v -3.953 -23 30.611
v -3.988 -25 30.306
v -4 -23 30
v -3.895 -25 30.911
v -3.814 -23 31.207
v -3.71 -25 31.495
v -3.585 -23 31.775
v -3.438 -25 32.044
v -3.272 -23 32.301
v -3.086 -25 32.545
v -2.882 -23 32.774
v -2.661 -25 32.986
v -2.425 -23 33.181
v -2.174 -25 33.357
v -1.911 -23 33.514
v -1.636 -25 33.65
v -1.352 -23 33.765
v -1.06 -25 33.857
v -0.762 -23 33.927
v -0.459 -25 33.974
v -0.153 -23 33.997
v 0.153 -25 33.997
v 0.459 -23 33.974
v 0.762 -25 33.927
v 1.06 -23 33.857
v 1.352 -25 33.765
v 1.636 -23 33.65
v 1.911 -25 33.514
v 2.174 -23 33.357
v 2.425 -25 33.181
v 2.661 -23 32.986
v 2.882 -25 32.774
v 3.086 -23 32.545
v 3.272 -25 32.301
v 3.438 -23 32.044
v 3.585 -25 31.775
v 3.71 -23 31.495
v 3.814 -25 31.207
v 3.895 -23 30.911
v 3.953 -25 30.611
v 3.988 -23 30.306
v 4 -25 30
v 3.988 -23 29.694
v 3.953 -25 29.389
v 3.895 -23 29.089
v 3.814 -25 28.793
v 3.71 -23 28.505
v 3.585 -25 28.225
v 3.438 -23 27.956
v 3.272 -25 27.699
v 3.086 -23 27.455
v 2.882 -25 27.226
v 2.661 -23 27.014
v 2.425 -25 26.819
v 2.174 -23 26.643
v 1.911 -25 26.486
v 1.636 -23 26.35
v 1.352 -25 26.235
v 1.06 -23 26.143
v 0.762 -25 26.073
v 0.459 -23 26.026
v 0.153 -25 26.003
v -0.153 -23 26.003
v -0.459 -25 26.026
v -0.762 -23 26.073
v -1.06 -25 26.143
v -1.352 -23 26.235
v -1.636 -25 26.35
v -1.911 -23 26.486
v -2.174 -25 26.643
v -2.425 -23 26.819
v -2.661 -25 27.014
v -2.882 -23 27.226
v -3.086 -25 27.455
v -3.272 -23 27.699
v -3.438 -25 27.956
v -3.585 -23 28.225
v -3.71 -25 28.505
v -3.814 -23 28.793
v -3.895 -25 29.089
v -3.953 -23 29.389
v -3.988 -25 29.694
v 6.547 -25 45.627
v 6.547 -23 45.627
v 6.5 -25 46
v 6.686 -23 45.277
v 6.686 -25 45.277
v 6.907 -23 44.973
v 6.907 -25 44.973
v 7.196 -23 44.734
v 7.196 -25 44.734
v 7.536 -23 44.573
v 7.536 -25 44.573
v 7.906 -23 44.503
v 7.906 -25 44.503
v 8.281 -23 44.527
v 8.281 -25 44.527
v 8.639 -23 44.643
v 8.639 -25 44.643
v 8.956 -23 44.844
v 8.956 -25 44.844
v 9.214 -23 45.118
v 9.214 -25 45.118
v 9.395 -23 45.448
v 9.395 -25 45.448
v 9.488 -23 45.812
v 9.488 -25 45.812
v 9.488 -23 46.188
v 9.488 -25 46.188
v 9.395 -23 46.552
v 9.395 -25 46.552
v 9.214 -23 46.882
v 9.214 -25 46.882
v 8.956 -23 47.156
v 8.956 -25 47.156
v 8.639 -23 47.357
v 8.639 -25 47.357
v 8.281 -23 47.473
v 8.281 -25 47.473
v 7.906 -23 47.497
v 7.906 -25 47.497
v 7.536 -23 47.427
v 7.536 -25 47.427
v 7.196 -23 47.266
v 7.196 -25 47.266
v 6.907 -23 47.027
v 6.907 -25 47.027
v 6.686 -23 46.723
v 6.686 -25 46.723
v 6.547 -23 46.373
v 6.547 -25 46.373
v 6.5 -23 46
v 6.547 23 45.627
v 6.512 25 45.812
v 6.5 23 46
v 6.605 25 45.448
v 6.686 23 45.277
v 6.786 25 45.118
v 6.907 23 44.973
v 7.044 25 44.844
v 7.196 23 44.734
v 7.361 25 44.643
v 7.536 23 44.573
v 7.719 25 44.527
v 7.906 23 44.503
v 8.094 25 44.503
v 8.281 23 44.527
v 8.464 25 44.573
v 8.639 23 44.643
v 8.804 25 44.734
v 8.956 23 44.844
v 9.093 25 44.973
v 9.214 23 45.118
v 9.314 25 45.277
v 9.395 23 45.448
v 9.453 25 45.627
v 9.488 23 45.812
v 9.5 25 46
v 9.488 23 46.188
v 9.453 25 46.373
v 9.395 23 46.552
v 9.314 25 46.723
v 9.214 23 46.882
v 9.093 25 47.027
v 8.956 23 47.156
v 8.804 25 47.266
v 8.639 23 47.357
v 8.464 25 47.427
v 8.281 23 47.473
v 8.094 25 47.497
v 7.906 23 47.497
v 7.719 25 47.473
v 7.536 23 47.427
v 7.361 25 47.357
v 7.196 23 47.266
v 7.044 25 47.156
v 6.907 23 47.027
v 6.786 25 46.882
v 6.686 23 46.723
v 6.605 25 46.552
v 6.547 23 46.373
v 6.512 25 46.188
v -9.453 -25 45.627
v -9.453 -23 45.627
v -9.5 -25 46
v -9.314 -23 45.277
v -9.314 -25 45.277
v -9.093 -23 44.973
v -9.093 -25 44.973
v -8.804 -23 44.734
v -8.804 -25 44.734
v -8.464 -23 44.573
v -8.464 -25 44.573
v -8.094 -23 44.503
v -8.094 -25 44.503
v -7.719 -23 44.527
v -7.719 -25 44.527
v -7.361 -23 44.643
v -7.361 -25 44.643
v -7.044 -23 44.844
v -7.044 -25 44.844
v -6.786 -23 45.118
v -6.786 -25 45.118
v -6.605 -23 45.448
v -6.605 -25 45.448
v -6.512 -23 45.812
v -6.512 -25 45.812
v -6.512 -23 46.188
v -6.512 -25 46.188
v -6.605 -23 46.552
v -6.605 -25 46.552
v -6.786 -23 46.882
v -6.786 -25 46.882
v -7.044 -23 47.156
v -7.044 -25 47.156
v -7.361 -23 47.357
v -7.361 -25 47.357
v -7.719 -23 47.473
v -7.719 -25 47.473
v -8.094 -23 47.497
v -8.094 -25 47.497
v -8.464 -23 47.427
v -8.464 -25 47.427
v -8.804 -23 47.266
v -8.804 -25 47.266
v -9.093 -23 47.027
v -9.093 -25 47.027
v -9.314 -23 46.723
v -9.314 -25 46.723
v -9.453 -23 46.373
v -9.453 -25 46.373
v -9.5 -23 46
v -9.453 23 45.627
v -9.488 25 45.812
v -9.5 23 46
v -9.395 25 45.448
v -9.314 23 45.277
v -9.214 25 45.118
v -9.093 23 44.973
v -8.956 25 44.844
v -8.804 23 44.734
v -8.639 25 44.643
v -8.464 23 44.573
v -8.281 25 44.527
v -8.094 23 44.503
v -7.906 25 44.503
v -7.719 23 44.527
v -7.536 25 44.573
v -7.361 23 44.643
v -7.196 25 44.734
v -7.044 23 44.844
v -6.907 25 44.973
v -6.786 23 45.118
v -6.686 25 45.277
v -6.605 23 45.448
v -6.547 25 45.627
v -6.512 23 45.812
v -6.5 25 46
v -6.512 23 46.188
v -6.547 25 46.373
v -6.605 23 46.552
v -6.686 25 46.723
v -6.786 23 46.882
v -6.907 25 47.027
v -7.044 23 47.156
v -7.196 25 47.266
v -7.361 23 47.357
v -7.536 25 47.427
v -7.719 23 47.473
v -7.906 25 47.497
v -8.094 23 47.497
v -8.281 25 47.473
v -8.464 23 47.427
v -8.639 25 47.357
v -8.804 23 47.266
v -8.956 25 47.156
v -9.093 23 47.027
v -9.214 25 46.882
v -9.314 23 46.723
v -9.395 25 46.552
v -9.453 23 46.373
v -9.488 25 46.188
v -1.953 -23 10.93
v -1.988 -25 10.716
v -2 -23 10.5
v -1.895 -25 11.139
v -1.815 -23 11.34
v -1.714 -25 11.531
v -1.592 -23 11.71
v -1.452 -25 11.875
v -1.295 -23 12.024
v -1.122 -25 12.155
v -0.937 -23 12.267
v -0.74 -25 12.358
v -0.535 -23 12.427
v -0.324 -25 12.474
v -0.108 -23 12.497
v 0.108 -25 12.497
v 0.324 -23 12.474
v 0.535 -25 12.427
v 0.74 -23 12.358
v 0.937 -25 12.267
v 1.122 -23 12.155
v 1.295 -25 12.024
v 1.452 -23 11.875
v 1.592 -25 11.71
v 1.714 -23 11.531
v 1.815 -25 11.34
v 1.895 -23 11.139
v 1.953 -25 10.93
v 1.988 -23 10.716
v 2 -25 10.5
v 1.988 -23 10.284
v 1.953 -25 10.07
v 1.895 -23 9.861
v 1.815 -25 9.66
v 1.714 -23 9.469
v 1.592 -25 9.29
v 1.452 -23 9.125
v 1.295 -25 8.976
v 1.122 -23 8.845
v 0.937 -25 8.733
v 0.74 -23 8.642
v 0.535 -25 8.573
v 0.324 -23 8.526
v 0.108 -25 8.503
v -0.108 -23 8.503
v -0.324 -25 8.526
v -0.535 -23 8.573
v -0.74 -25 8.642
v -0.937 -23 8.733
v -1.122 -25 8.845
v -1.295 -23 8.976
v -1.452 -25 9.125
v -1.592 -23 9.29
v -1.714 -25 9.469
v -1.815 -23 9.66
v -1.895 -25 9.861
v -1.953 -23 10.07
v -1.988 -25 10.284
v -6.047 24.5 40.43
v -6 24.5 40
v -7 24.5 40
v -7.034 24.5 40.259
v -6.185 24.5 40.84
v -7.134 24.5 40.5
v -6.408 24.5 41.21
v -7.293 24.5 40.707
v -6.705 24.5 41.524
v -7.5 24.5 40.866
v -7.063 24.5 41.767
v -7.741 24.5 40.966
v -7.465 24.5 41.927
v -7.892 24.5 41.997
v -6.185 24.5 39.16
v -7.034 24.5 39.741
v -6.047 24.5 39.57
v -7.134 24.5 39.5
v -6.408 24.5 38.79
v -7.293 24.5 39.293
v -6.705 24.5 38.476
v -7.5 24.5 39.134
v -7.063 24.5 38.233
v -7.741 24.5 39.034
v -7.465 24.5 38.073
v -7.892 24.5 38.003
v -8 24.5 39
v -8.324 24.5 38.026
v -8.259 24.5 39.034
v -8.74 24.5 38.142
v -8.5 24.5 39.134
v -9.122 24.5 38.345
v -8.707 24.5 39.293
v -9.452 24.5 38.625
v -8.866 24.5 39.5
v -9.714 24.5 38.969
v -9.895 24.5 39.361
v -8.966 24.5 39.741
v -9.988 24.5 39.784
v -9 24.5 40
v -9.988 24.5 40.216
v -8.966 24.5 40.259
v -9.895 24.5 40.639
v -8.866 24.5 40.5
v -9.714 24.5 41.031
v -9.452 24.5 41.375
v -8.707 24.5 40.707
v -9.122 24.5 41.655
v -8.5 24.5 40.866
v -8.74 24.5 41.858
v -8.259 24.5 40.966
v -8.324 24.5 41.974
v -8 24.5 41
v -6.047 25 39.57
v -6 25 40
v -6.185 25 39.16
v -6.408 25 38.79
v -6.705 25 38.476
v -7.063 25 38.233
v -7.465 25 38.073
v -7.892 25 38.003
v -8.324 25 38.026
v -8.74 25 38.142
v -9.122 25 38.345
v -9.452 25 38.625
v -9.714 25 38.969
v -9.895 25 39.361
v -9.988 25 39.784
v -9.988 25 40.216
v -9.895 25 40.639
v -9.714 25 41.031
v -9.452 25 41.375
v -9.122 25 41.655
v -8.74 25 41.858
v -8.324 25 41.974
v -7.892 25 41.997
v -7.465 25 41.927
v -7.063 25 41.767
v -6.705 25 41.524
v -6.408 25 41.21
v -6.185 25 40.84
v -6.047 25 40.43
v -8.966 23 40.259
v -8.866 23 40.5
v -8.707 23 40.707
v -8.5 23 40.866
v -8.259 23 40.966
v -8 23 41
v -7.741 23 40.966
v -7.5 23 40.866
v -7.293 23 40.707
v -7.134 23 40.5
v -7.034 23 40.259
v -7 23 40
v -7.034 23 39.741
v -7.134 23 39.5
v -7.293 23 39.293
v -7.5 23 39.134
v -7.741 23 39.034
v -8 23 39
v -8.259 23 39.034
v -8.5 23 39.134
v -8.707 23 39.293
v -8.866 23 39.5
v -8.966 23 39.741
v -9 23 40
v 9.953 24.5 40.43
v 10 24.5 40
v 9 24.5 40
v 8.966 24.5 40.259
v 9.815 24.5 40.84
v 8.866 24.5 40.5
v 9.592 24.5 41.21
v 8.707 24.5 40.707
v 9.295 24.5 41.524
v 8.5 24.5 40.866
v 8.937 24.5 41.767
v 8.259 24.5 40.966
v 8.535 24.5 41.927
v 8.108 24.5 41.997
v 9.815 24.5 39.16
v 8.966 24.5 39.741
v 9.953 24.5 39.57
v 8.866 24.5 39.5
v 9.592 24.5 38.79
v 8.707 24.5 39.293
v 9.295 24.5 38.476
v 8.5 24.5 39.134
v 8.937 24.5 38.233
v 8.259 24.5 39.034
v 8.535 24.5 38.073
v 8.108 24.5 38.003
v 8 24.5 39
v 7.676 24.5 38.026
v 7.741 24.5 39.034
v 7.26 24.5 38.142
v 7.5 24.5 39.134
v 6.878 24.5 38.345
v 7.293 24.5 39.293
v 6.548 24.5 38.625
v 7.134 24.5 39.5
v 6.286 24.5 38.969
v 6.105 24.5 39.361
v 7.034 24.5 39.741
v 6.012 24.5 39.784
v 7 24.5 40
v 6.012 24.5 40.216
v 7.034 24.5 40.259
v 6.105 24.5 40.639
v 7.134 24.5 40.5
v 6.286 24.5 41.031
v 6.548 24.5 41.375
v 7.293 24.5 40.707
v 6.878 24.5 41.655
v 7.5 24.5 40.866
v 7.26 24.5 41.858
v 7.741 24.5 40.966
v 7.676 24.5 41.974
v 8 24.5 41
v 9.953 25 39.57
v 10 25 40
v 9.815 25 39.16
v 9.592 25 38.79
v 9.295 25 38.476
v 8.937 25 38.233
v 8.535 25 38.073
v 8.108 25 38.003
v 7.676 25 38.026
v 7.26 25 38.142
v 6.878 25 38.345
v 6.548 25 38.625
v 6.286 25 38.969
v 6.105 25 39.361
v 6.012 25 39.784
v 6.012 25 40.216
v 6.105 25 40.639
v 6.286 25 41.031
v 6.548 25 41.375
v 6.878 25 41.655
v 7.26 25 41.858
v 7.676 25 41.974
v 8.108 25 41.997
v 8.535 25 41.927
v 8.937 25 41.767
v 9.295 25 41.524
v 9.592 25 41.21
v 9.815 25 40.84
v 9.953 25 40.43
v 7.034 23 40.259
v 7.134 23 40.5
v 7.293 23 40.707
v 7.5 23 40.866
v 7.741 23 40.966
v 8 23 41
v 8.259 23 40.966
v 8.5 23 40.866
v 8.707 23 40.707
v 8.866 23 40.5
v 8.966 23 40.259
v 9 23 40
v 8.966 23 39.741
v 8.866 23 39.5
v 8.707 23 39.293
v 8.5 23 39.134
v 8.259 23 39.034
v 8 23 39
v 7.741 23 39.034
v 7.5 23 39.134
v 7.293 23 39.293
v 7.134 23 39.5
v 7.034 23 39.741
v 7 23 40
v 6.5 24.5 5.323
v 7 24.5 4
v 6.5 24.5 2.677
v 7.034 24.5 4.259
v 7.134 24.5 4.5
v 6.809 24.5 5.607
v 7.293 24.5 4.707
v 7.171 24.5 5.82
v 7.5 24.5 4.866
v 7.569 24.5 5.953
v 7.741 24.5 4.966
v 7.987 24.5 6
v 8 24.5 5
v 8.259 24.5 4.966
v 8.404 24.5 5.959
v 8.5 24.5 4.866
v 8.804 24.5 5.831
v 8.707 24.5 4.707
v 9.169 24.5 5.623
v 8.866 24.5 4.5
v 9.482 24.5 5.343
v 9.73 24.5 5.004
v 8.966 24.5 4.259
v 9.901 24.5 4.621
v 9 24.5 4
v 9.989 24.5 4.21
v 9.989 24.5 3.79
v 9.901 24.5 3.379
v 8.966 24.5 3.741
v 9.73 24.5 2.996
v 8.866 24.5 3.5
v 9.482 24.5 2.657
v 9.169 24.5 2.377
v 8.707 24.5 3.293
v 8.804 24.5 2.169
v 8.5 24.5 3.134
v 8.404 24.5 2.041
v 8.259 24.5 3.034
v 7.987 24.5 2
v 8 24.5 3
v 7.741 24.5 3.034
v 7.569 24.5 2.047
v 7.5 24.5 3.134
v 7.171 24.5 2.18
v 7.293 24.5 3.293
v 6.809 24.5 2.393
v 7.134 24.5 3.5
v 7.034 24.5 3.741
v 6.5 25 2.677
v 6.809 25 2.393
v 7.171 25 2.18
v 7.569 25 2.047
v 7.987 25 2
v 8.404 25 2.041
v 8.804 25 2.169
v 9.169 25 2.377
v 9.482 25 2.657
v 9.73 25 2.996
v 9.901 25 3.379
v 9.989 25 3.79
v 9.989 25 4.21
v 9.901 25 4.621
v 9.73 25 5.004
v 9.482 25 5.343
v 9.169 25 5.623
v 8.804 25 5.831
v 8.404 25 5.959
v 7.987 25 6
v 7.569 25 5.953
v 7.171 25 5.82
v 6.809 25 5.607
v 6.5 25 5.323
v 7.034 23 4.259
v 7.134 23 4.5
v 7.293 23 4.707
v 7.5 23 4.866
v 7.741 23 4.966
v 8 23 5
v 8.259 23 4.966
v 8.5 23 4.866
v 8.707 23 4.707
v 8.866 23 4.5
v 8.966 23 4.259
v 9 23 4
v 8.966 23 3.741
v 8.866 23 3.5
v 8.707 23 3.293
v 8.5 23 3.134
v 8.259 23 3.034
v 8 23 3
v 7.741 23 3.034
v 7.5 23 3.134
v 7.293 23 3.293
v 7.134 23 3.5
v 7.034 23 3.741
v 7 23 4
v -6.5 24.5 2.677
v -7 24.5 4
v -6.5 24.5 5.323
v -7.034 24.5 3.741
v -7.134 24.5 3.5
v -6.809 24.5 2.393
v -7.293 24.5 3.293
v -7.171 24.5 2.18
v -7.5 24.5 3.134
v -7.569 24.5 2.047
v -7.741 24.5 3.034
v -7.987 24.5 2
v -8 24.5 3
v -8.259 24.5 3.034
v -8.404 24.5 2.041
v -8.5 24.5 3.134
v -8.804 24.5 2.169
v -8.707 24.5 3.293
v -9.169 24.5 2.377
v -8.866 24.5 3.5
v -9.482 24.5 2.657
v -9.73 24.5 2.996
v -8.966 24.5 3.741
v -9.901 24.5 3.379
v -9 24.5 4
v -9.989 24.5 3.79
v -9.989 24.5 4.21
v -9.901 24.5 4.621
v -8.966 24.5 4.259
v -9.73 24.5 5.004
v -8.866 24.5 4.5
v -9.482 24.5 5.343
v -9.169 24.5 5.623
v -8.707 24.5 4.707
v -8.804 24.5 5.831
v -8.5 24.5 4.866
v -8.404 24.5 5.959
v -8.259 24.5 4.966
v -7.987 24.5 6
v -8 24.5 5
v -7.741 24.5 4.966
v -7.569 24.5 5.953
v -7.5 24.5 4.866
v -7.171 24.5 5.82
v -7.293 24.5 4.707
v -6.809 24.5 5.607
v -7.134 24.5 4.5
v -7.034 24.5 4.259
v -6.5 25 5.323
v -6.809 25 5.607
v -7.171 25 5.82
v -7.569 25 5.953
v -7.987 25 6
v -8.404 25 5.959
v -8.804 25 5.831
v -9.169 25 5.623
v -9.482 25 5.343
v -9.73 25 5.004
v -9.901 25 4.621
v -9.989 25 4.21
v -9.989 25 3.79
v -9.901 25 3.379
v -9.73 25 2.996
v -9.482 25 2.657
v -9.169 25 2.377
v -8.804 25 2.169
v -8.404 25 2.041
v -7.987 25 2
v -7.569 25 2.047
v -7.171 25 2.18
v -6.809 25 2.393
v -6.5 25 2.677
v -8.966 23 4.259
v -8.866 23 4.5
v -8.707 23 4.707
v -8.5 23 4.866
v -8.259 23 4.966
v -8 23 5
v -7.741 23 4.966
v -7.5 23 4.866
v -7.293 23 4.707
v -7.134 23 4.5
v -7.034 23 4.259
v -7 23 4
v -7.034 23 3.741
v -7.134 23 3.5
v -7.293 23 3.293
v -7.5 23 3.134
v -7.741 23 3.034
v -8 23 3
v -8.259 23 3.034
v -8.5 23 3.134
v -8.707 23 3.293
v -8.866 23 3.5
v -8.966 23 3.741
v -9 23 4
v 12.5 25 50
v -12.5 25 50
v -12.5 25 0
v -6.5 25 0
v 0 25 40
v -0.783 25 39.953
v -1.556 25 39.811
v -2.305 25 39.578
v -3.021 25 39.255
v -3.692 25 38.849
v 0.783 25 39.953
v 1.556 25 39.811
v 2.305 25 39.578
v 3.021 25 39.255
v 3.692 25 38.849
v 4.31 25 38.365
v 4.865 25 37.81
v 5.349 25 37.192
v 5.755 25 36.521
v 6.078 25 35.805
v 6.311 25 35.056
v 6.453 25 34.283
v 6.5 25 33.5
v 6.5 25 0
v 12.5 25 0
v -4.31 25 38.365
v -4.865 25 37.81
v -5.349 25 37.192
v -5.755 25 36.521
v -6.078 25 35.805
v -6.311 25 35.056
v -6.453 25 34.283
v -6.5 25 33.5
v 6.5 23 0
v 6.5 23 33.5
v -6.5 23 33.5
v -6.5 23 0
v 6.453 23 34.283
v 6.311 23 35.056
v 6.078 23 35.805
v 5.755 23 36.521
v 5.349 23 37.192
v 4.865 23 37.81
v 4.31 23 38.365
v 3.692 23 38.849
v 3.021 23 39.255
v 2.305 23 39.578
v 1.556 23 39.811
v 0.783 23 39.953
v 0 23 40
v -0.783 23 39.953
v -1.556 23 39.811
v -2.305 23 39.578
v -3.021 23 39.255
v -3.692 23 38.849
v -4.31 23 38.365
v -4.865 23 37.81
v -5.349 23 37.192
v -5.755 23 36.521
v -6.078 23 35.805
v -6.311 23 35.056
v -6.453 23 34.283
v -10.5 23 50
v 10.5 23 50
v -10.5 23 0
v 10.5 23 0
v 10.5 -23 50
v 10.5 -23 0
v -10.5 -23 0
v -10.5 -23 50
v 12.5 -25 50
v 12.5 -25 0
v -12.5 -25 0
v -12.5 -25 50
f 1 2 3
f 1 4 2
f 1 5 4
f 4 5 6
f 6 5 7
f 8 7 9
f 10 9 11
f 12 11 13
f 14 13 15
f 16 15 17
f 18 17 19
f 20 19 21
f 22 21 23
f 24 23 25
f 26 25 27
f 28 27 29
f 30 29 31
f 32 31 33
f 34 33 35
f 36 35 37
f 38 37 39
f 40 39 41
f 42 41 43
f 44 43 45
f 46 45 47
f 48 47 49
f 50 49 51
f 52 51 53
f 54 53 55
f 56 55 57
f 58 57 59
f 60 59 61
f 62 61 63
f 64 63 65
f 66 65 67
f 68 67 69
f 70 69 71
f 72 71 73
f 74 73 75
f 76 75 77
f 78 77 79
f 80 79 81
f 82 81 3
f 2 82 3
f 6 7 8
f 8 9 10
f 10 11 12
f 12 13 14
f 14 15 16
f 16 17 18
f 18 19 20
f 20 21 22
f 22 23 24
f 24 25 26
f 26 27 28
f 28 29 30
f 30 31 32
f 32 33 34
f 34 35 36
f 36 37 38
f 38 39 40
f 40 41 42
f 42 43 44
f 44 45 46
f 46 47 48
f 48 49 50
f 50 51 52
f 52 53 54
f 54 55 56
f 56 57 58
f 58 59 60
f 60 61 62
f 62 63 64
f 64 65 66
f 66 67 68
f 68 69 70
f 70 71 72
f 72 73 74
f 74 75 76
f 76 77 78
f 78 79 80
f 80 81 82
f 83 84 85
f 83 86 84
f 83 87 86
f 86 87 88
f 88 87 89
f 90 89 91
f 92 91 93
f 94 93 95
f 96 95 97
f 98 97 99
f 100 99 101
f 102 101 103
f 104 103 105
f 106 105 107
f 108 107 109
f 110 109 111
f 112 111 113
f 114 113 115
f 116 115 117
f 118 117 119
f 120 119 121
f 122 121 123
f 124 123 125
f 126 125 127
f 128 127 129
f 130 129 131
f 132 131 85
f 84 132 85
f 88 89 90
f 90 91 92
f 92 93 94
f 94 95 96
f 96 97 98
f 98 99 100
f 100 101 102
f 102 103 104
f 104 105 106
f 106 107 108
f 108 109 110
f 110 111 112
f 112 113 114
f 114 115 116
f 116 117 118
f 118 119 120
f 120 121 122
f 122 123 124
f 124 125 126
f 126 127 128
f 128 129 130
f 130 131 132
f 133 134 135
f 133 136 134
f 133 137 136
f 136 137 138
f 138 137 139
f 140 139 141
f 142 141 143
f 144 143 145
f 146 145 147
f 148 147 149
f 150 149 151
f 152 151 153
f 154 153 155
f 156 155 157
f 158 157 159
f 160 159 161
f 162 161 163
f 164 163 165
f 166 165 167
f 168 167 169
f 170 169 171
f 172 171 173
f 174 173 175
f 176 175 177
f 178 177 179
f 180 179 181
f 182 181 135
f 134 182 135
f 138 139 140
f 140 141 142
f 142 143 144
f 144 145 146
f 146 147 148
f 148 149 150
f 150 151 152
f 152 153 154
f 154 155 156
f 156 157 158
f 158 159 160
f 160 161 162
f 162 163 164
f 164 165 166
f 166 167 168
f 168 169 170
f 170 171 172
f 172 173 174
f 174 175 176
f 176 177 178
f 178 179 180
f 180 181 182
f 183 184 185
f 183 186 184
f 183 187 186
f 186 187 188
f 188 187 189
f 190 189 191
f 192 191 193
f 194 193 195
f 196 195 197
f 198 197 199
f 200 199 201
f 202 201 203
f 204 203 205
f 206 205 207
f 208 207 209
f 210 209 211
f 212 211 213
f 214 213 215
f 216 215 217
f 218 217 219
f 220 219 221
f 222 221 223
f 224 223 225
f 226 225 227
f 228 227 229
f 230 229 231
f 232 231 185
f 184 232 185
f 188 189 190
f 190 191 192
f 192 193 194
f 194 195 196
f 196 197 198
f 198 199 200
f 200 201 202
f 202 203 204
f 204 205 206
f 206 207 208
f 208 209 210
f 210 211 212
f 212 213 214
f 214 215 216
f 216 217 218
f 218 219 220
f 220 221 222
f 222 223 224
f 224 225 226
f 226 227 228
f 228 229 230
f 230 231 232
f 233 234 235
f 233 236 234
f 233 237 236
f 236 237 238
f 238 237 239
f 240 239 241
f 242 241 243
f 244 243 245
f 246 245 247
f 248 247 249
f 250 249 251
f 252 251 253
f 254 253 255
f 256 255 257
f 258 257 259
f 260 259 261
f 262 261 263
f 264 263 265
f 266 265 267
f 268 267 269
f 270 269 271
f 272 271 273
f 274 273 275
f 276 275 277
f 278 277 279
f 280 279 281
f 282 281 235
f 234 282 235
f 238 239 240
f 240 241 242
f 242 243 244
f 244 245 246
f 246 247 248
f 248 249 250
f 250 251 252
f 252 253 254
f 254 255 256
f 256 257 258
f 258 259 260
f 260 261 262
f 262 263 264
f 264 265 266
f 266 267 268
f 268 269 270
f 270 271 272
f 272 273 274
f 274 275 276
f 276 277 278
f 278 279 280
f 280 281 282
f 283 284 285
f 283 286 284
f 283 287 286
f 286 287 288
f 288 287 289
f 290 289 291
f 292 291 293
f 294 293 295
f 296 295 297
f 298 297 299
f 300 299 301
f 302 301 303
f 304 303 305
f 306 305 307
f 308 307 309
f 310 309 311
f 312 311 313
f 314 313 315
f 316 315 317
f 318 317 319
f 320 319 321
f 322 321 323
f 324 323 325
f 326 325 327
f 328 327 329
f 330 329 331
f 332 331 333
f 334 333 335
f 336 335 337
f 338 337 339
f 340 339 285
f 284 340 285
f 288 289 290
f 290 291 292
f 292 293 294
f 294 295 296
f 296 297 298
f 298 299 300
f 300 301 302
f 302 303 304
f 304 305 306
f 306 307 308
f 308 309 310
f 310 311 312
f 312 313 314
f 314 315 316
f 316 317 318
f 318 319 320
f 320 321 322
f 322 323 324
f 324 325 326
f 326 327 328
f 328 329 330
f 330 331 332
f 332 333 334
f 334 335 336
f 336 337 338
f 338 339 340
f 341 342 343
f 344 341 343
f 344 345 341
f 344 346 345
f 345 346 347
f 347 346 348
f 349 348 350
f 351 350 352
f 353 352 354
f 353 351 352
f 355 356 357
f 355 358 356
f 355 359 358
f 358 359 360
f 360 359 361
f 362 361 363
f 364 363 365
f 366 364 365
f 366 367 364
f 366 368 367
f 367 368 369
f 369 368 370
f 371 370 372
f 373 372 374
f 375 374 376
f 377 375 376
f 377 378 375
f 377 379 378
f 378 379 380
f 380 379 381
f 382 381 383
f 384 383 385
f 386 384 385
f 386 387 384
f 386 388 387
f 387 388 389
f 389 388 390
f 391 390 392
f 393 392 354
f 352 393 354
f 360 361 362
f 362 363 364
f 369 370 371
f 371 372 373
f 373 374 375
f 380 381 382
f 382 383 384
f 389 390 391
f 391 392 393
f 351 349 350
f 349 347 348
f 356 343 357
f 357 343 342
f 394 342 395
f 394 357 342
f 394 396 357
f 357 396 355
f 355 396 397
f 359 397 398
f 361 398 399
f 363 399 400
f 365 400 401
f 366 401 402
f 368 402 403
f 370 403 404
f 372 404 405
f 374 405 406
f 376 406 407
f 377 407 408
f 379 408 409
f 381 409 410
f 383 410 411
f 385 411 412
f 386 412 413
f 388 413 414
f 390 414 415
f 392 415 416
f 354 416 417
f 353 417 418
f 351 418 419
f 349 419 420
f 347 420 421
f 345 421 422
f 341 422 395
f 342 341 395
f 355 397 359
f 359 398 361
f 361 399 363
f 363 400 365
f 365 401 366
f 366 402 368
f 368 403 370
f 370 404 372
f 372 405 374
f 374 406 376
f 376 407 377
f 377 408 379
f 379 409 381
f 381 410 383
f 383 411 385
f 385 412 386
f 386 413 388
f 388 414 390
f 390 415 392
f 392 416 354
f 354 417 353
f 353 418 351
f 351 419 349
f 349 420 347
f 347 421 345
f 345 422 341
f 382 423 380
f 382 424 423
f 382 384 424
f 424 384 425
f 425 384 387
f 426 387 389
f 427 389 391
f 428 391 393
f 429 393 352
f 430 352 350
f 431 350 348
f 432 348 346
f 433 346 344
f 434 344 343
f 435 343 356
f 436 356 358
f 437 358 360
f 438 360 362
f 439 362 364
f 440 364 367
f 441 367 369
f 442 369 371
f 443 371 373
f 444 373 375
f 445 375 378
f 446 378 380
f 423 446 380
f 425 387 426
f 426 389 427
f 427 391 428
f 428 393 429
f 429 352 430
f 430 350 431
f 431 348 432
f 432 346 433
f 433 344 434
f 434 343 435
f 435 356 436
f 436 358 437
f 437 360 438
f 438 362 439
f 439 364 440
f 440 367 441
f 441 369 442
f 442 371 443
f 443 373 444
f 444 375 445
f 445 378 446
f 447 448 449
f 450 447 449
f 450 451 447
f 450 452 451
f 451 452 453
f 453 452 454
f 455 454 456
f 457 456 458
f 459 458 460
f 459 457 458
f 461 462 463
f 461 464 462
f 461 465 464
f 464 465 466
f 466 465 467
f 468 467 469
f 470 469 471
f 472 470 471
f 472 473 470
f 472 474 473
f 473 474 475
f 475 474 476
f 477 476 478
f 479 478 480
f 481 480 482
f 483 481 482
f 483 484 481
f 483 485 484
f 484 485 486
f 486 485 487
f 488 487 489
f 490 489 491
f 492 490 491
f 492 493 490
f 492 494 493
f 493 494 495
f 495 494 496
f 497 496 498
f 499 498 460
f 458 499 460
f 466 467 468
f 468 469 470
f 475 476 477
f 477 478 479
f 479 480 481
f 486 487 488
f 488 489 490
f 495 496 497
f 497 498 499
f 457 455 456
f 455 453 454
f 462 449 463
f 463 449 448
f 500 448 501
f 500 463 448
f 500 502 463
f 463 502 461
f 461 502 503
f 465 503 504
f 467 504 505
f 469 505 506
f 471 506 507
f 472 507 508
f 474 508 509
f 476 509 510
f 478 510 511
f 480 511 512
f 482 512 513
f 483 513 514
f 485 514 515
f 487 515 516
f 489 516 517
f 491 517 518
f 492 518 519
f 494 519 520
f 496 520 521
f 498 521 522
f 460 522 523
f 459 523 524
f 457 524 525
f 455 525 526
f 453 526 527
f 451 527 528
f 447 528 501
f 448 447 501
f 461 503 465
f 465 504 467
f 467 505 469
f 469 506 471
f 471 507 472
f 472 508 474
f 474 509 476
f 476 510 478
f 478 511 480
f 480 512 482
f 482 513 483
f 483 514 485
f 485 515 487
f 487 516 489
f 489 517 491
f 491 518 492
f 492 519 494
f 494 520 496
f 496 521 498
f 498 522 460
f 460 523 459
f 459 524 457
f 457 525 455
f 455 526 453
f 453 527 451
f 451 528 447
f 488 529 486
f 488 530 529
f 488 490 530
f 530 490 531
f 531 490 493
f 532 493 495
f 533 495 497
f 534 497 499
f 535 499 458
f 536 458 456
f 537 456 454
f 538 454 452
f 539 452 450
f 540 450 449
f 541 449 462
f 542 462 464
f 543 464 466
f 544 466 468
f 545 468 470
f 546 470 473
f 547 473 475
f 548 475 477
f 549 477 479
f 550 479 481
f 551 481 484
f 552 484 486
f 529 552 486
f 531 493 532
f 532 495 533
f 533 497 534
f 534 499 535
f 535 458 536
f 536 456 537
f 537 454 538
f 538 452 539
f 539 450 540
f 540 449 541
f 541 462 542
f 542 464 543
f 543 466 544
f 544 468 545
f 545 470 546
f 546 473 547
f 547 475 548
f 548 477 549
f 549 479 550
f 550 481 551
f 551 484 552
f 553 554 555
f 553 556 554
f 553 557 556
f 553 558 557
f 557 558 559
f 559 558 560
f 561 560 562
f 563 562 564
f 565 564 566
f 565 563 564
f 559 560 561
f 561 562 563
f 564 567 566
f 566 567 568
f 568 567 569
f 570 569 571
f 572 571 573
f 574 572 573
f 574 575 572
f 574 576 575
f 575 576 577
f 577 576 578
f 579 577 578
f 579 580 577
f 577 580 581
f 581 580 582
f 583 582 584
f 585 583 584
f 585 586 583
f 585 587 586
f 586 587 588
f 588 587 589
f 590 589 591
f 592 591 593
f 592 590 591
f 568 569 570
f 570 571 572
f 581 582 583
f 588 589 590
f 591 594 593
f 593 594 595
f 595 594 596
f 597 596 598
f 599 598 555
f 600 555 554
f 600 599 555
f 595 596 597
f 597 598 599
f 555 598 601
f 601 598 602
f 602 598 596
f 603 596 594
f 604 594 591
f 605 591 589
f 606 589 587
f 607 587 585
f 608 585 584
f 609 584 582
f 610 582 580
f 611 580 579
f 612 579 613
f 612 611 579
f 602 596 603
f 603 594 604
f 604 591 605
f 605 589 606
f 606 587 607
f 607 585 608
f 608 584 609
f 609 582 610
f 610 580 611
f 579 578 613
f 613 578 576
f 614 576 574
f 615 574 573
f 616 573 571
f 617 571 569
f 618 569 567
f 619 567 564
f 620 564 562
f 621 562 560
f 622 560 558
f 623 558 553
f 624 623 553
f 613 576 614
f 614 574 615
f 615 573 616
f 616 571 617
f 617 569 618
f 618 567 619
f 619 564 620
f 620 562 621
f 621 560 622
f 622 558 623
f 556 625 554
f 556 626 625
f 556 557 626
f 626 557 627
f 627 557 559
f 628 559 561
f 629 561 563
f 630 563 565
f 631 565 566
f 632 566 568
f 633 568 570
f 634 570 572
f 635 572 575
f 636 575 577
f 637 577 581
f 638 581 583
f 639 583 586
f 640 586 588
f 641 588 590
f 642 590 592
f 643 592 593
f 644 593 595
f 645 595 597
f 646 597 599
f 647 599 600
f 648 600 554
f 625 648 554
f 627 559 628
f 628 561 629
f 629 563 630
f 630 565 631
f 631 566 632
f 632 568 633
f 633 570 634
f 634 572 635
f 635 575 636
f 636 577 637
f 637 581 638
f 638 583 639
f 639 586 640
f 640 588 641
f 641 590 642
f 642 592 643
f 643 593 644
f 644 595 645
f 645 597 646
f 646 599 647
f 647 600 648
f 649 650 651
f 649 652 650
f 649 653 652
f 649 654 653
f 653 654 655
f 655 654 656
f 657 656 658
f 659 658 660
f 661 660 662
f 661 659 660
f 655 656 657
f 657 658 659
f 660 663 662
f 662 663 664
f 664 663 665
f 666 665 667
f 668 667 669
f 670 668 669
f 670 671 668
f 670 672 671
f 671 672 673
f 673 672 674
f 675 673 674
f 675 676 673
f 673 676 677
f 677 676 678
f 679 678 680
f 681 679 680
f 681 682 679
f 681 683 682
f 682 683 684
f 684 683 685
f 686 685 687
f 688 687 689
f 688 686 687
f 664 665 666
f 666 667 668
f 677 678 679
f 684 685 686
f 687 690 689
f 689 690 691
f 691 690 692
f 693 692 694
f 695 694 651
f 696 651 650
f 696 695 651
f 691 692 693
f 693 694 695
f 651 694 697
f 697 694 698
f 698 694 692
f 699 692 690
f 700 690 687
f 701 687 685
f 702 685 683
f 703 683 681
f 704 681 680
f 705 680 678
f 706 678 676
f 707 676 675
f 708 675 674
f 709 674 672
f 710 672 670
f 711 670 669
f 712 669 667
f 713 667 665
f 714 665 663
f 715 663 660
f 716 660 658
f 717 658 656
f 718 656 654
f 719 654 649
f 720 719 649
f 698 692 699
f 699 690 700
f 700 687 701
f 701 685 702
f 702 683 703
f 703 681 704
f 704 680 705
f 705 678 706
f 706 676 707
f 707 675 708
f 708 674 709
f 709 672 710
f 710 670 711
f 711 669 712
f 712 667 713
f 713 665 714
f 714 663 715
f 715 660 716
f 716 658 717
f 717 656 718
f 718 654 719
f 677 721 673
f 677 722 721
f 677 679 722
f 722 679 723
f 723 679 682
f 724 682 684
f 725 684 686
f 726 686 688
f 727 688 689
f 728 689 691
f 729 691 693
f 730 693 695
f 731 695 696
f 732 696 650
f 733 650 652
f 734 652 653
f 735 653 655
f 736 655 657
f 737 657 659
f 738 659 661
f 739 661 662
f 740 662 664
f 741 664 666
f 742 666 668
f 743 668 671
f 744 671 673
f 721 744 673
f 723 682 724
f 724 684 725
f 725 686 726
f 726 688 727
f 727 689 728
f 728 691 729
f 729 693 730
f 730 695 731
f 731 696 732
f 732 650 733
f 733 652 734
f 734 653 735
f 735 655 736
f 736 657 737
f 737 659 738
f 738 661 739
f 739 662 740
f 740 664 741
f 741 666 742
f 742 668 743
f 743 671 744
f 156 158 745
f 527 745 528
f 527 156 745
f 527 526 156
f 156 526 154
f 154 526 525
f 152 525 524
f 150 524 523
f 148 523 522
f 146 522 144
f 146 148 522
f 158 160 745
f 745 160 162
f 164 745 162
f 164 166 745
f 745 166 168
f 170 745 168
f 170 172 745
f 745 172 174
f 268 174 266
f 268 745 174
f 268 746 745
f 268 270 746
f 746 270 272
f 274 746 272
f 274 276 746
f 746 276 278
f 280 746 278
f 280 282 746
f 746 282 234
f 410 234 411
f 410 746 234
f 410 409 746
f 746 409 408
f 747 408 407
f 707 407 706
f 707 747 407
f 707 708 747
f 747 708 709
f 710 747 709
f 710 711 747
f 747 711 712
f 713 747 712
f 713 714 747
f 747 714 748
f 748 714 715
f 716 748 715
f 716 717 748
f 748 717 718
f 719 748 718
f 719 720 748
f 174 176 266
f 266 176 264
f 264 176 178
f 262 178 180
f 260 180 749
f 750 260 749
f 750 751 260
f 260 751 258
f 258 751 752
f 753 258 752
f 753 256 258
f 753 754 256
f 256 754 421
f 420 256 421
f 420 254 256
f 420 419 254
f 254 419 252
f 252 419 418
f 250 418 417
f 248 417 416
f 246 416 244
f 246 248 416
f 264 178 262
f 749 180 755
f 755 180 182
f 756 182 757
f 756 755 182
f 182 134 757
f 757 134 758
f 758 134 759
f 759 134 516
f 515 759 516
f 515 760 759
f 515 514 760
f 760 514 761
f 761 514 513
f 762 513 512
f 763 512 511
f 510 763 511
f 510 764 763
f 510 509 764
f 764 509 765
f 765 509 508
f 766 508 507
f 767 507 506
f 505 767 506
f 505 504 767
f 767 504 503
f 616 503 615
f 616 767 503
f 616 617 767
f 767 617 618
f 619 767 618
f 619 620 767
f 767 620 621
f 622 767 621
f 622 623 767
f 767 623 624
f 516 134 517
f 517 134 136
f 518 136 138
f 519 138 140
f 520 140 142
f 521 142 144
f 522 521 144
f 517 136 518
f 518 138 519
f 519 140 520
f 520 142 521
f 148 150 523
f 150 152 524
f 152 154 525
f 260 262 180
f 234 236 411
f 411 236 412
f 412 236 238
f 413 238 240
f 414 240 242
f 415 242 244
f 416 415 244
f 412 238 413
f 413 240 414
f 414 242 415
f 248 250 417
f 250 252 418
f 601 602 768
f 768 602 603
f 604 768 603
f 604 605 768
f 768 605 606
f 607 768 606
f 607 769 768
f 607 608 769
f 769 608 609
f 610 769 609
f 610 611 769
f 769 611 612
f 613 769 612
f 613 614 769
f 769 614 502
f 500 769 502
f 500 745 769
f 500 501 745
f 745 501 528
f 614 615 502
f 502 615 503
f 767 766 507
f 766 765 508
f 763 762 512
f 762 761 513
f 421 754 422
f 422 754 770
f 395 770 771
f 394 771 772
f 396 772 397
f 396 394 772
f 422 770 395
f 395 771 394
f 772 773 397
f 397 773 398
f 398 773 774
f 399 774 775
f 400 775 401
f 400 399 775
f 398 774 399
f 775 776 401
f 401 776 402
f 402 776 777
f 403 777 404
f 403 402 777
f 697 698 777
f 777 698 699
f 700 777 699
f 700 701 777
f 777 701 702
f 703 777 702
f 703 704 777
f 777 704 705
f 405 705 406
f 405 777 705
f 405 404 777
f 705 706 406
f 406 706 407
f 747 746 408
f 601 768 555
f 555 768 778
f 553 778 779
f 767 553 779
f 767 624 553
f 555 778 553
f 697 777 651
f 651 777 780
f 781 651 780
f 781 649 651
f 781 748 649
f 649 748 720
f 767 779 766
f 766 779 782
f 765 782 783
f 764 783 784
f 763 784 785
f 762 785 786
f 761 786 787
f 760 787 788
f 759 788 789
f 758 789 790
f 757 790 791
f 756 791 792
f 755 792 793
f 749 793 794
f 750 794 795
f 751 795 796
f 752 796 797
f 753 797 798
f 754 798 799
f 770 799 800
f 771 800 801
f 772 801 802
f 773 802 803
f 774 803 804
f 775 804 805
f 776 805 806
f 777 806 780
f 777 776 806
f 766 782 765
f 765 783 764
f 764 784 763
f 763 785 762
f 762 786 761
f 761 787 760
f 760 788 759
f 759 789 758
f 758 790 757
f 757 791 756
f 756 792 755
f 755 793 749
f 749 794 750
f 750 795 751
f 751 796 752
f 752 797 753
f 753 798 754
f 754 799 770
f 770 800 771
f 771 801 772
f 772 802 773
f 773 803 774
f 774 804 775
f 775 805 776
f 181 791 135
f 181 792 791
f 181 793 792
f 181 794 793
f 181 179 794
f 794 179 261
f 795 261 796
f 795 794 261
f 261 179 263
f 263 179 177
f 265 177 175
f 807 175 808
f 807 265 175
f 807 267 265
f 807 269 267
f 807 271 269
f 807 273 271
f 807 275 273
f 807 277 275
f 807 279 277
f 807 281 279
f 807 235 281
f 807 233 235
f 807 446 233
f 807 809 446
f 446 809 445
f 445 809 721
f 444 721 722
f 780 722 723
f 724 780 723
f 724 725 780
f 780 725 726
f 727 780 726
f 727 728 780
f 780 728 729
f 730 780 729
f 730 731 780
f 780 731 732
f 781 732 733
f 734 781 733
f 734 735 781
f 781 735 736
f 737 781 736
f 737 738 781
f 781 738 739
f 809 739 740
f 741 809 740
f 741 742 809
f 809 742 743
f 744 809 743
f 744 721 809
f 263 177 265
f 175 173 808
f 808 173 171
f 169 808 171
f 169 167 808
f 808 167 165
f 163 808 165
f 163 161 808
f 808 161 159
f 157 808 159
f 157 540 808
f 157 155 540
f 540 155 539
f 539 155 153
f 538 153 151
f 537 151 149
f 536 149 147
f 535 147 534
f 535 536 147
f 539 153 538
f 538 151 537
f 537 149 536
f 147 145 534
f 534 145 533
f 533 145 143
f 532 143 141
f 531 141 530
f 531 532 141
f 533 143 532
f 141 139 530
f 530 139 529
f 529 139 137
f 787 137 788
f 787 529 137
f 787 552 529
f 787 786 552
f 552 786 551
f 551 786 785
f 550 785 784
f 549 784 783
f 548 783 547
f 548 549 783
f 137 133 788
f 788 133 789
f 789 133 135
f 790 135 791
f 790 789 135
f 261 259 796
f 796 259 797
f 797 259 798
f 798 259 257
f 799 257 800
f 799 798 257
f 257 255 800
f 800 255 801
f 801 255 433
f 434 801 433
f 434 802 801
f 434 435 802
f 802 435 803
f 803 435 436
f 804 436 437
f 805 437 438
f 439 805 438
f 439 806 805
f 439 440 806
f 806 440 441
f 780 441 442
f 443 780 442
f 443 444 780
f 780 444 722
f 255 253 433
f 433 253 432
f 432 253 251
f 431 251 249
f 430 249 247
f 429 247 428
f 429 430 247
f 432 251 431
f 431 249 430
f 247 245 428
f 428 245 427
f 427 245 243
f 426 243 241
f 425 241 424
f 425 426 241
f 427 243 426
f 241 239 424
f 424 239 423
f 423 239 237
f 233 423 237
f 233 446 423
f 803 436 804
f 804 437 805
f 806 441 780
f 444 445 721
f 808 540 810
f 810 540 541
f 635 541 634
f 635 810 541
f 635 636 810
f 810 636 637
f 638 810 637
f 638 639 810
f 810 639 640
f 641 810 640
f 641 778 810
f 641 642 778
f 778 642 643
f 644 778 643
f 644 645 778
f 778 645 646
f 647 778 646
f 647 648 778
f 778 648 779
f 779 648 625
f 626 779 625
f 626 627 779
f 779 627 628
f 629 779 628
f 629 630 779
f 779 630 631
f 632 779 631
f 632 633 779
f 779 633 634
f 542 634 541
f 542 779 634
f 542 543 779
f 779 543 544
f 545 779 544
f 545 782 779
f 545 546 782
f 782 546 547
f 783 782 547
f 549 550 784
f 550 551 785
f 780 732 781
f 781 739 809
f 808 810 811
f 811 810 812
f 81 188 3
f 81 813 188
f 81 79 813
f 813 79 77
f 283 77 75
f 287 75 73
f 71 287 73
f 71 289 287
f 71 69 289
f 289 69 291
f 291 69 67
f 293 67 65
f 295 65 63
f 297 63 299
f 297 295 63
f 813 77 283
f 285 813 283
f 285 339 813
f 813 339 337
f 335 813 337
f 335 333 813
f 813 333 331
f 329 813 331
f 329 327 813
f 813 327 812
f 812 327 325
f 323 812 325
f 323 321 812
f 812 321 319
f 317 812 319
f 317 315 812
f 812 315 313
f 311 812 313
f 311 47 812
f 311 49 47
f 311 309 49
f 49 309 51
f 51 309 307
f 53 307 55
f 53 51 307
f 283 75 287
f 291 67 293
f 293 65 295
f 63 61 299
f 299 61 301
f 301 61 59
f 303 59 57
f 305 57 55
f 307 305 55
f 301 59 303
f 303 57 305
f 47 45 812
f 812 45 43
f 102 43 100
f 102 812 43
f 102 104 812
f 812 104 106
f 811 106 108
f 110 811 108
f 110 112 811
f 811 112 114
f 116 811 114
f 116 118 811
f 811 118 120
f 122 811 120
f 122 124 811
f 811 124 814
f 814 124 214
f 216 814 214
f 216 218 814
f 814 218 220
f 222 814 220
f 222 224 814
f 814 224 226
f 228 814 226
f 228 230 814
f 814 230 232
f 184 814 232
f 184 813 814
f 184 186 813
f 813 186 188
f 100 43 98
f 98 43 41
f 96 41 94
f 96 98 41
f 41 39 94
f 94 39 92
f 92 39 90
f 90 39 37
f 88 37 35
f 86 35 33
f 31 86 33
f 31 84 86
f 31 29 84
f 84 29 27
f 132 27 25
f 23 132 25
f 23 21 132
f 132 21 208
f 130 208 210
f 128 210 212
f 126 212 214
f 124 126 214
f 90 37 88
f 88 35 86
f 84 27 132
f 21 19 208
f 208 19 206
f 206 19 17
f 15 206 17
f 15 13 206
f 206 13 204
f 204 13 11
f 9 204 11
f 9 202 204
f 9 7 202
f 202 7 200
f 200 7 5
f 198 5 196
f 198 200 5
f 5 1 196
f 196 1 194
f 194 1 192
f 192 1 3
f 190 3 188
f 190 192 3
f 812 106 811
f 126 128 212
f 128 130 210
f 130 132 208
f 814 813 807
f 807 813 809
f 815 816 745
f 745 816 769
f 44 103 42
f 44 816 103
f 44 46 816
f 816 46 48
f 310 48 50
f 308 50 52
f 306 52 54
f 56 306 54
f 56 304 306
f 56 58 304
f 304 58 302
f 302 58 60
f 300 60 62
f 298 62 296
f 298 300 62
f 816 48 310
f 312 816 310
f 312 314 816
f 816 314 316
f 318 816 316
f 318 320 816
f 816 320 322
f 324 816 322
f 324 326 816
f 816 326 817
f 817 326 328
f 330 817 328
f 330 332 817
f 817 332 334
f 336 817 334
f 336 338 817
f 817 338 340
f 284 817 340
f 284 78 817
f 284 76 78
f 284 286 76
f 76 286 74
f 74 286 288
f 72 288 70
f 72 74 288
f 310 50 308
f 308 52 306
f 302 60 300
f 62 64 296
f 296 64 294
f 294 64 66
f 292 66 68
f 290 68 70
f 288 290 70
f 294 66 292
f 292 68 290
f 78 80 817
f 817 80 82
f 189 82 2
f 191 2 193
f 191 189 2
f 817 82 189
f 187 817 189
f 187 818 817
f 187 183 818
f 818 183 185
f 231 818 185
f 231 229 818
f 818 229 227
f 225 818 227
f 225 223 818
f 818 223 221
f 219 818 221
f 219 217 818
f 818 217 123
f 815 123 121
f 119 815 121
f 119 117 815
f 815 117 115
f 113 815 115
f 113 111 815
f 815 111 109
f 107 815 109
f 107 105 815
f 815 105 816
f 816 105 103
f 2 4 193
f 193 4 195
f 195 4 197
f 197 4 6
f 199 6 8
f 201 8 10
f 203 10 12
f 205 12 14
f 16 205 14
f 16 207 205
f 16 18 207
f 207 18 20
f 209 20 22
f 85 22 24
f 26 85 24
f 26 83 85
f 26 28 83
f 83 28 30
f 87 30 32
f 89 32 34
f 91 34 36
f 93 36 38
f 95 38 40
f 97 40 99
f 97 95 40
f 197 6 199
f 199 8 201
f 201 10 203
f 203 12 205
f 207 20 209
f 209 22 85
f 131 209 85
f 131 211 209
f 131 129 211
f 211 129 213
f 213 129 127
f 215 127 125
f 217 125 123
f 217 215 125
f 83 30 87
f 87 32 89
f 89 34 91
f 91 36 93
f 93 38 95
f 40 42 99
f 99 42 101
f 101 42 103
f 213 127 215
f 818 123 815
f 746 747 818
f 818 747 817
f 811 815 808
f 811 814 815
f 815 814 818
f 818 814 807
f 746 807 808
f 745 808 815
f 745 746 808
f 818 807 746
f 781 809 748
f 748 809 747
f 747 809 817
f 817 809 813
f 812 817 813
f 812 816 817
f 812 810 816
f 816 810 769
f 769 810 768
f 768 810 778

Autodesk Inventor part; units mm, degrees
ref_plane "YZ Plane" through (0, 0, 0) normal (1, 0, 0) x (0, 1, 0)
ref_plane "XZ Plane" through (0, 0, 0) normal (0, 1, 0) x (-1, 0, 0)
ref_plane "XY Plane" through (0, 0, 0) normal (0, 0, 1) x (1, 0, 0)
sketch "スケッチ1" plane through (0, 0, 0) normal (0, 0, 1) x (1, 0, 0)
  line L0 (-12.5, 25) -> (12.5, 25)
  line L1 (12.5, 25) -> (12.5, -25)
  line L2 (12.5, -25) -> (-12.5, -25)
  line L3 (-12.5, -25) -> (-12.5, 25)
  line L4 (-10.5, 23) -> (10.5, 23)
  line L5 (10.5, 23) -> (10.5, -23)
  line L6 (10.5, -23) -> (-10.5, -23)
  line L7 (-10.5, -23) -> (-10.5, 23)
  point P0 (0, 0)
  dimension "d0" = 25
  dimension "d1" = 50
  dimension "d2" = 46
  dimension "d3" = 21
  dimension "d4" = 25
  dimension "d5" = 23
  dimension "d6" = 10.5
  dimension "d7" = 12.5
extrude "押し出し1" add sketch "スケッチ1" along normal blind 50
sketch "スケッチ2" plane through (-12.5, 25, 0) normal (0, 1, 0) x (1, 0, 0)
  line L0 (0, 0) -> (25, 0) projected
  line L1 (0, 0) -> (0, -50) projected
  arc A0 (6, -33.5) -> (19, -33.5) centre (12.5, -33.5) ccw
  line L2 (6, -33.5) -> (6, 0)
  line L3 (19, -33.5) -> (19, 0)
  point P0 (12.5, 0)
  dimension "d10" = 13
  dimension "d11" = 33.5
  dimension "d12" = 12.5
extrude "押し出し2" cut sketch "スケッチ2" against normal blind 2
sketch "スケッチ3" plane through (-12.5, 25, 50) normal (0, 1, 0) x (1, 0, 0)
  arc A0 (6, 16.5) -> (19, 16.5) centre (12.5, 16.5) ccw projected
  circle A1 centre (4.5, 10) radius 1
  circle A2 centre (4.5, 46) radius 1
  circle A3 centre (20.5, 46) radius 1
  circle A4 centre (20.5, 10) radius 1
  point P0 (12.5, 50)
  dimension "d15" = 6.5
  dimension "d16" = 6.5
  dimension "d17" = 2
  dimension "d18" = 8
  dimension "d19" = 8
  dimension "d20" = 8
  dimension "d21" = 8
  dimension "d22" = 29.5
  dimension "d23" = 29.5
hole "穴1" at (-8, 25, 4) at (8, 25, 4) at (8, 25, 40) at (-8, 25, 40) direction (0, -1, 0) diameter 2 depth 2 tip angle 118 counterbore diameter 4 counterbore depth 0.5
sketch "スケッチ4" plane through (-12.5, -25, 0) normal (0, -1, 0) x (1, 0, 0)
  line L0 (25, 0) -> (0, 0) projected
  line L1 (25, 0) -> (25, 50) projected
  circle A0 centre (12.5, 10.5) radius 2
  point P0 (12.5, 0)
  dimension "d31" = 4
  dimension "d32" = 12.5
  dimension "d33" = 10.5
hole "穴2" at (0, -25, 10.5) direction (0, 1, 0) diameter 4 end through all
sketch "スケッチ5" plane through (-12.5, 25, 50) normal (0, 1, 0) x (1, 0, 0)
  line L0 (0, 0) -> (25, 0) projected
  arc A0 (6, 16.5) -> (19, 16.5) centre (12.5, 16.5) ccw projected
  circle A1 centre (20.5, 4) radius 1.5
  circle A2 centre (4.5, 4) radius 1.5
  point P0 (12.5, 50)
  dimension "d43" = 4
  dimension "d44" = 4
  dimension "d46" = 8
  dimension "d47" = 8
  dimension "d57" = 3
hole "穴4" at (-8, 25, 46) at (8, 25, 46) direction (0, -1, 0) diameter 3 end through all
thread "ねじ1" size "M3x0.5" class "6H" standard "ANSI Metric M Profile" full length
thread "ねじ2" size "M3x0.5" class "6H" standard "ANSI Metric M Profile" full length
thread "ねじ3" size "M3x0.5" class "6H" standard "ANSI Metric M Profile" full length
thread "ねじ4" size "M3x0.5" class "6H" standard "ANSI Metric M Profile" full length
sketch "スケッチ7" plane through (-12.5, -25, 0) normal (0, -1, 0) x (1, 0, 0)
  line L0 (25, 50) -> (0, 50) projected
  line L1 (0, 0) -> (0, 50) projected
  circle A0 centre (12.5, 30) radius 4
  point P0 (12.5, 0)
  dimension "d78" = 8
  dimension "d80" = 20
  dimension "d81" = 12.5
hole "穴5" at (0, -25, 30) direction (0, 1, 0) diameter 8 end through all
properties part number "08" material "アルミニウム 6061"
